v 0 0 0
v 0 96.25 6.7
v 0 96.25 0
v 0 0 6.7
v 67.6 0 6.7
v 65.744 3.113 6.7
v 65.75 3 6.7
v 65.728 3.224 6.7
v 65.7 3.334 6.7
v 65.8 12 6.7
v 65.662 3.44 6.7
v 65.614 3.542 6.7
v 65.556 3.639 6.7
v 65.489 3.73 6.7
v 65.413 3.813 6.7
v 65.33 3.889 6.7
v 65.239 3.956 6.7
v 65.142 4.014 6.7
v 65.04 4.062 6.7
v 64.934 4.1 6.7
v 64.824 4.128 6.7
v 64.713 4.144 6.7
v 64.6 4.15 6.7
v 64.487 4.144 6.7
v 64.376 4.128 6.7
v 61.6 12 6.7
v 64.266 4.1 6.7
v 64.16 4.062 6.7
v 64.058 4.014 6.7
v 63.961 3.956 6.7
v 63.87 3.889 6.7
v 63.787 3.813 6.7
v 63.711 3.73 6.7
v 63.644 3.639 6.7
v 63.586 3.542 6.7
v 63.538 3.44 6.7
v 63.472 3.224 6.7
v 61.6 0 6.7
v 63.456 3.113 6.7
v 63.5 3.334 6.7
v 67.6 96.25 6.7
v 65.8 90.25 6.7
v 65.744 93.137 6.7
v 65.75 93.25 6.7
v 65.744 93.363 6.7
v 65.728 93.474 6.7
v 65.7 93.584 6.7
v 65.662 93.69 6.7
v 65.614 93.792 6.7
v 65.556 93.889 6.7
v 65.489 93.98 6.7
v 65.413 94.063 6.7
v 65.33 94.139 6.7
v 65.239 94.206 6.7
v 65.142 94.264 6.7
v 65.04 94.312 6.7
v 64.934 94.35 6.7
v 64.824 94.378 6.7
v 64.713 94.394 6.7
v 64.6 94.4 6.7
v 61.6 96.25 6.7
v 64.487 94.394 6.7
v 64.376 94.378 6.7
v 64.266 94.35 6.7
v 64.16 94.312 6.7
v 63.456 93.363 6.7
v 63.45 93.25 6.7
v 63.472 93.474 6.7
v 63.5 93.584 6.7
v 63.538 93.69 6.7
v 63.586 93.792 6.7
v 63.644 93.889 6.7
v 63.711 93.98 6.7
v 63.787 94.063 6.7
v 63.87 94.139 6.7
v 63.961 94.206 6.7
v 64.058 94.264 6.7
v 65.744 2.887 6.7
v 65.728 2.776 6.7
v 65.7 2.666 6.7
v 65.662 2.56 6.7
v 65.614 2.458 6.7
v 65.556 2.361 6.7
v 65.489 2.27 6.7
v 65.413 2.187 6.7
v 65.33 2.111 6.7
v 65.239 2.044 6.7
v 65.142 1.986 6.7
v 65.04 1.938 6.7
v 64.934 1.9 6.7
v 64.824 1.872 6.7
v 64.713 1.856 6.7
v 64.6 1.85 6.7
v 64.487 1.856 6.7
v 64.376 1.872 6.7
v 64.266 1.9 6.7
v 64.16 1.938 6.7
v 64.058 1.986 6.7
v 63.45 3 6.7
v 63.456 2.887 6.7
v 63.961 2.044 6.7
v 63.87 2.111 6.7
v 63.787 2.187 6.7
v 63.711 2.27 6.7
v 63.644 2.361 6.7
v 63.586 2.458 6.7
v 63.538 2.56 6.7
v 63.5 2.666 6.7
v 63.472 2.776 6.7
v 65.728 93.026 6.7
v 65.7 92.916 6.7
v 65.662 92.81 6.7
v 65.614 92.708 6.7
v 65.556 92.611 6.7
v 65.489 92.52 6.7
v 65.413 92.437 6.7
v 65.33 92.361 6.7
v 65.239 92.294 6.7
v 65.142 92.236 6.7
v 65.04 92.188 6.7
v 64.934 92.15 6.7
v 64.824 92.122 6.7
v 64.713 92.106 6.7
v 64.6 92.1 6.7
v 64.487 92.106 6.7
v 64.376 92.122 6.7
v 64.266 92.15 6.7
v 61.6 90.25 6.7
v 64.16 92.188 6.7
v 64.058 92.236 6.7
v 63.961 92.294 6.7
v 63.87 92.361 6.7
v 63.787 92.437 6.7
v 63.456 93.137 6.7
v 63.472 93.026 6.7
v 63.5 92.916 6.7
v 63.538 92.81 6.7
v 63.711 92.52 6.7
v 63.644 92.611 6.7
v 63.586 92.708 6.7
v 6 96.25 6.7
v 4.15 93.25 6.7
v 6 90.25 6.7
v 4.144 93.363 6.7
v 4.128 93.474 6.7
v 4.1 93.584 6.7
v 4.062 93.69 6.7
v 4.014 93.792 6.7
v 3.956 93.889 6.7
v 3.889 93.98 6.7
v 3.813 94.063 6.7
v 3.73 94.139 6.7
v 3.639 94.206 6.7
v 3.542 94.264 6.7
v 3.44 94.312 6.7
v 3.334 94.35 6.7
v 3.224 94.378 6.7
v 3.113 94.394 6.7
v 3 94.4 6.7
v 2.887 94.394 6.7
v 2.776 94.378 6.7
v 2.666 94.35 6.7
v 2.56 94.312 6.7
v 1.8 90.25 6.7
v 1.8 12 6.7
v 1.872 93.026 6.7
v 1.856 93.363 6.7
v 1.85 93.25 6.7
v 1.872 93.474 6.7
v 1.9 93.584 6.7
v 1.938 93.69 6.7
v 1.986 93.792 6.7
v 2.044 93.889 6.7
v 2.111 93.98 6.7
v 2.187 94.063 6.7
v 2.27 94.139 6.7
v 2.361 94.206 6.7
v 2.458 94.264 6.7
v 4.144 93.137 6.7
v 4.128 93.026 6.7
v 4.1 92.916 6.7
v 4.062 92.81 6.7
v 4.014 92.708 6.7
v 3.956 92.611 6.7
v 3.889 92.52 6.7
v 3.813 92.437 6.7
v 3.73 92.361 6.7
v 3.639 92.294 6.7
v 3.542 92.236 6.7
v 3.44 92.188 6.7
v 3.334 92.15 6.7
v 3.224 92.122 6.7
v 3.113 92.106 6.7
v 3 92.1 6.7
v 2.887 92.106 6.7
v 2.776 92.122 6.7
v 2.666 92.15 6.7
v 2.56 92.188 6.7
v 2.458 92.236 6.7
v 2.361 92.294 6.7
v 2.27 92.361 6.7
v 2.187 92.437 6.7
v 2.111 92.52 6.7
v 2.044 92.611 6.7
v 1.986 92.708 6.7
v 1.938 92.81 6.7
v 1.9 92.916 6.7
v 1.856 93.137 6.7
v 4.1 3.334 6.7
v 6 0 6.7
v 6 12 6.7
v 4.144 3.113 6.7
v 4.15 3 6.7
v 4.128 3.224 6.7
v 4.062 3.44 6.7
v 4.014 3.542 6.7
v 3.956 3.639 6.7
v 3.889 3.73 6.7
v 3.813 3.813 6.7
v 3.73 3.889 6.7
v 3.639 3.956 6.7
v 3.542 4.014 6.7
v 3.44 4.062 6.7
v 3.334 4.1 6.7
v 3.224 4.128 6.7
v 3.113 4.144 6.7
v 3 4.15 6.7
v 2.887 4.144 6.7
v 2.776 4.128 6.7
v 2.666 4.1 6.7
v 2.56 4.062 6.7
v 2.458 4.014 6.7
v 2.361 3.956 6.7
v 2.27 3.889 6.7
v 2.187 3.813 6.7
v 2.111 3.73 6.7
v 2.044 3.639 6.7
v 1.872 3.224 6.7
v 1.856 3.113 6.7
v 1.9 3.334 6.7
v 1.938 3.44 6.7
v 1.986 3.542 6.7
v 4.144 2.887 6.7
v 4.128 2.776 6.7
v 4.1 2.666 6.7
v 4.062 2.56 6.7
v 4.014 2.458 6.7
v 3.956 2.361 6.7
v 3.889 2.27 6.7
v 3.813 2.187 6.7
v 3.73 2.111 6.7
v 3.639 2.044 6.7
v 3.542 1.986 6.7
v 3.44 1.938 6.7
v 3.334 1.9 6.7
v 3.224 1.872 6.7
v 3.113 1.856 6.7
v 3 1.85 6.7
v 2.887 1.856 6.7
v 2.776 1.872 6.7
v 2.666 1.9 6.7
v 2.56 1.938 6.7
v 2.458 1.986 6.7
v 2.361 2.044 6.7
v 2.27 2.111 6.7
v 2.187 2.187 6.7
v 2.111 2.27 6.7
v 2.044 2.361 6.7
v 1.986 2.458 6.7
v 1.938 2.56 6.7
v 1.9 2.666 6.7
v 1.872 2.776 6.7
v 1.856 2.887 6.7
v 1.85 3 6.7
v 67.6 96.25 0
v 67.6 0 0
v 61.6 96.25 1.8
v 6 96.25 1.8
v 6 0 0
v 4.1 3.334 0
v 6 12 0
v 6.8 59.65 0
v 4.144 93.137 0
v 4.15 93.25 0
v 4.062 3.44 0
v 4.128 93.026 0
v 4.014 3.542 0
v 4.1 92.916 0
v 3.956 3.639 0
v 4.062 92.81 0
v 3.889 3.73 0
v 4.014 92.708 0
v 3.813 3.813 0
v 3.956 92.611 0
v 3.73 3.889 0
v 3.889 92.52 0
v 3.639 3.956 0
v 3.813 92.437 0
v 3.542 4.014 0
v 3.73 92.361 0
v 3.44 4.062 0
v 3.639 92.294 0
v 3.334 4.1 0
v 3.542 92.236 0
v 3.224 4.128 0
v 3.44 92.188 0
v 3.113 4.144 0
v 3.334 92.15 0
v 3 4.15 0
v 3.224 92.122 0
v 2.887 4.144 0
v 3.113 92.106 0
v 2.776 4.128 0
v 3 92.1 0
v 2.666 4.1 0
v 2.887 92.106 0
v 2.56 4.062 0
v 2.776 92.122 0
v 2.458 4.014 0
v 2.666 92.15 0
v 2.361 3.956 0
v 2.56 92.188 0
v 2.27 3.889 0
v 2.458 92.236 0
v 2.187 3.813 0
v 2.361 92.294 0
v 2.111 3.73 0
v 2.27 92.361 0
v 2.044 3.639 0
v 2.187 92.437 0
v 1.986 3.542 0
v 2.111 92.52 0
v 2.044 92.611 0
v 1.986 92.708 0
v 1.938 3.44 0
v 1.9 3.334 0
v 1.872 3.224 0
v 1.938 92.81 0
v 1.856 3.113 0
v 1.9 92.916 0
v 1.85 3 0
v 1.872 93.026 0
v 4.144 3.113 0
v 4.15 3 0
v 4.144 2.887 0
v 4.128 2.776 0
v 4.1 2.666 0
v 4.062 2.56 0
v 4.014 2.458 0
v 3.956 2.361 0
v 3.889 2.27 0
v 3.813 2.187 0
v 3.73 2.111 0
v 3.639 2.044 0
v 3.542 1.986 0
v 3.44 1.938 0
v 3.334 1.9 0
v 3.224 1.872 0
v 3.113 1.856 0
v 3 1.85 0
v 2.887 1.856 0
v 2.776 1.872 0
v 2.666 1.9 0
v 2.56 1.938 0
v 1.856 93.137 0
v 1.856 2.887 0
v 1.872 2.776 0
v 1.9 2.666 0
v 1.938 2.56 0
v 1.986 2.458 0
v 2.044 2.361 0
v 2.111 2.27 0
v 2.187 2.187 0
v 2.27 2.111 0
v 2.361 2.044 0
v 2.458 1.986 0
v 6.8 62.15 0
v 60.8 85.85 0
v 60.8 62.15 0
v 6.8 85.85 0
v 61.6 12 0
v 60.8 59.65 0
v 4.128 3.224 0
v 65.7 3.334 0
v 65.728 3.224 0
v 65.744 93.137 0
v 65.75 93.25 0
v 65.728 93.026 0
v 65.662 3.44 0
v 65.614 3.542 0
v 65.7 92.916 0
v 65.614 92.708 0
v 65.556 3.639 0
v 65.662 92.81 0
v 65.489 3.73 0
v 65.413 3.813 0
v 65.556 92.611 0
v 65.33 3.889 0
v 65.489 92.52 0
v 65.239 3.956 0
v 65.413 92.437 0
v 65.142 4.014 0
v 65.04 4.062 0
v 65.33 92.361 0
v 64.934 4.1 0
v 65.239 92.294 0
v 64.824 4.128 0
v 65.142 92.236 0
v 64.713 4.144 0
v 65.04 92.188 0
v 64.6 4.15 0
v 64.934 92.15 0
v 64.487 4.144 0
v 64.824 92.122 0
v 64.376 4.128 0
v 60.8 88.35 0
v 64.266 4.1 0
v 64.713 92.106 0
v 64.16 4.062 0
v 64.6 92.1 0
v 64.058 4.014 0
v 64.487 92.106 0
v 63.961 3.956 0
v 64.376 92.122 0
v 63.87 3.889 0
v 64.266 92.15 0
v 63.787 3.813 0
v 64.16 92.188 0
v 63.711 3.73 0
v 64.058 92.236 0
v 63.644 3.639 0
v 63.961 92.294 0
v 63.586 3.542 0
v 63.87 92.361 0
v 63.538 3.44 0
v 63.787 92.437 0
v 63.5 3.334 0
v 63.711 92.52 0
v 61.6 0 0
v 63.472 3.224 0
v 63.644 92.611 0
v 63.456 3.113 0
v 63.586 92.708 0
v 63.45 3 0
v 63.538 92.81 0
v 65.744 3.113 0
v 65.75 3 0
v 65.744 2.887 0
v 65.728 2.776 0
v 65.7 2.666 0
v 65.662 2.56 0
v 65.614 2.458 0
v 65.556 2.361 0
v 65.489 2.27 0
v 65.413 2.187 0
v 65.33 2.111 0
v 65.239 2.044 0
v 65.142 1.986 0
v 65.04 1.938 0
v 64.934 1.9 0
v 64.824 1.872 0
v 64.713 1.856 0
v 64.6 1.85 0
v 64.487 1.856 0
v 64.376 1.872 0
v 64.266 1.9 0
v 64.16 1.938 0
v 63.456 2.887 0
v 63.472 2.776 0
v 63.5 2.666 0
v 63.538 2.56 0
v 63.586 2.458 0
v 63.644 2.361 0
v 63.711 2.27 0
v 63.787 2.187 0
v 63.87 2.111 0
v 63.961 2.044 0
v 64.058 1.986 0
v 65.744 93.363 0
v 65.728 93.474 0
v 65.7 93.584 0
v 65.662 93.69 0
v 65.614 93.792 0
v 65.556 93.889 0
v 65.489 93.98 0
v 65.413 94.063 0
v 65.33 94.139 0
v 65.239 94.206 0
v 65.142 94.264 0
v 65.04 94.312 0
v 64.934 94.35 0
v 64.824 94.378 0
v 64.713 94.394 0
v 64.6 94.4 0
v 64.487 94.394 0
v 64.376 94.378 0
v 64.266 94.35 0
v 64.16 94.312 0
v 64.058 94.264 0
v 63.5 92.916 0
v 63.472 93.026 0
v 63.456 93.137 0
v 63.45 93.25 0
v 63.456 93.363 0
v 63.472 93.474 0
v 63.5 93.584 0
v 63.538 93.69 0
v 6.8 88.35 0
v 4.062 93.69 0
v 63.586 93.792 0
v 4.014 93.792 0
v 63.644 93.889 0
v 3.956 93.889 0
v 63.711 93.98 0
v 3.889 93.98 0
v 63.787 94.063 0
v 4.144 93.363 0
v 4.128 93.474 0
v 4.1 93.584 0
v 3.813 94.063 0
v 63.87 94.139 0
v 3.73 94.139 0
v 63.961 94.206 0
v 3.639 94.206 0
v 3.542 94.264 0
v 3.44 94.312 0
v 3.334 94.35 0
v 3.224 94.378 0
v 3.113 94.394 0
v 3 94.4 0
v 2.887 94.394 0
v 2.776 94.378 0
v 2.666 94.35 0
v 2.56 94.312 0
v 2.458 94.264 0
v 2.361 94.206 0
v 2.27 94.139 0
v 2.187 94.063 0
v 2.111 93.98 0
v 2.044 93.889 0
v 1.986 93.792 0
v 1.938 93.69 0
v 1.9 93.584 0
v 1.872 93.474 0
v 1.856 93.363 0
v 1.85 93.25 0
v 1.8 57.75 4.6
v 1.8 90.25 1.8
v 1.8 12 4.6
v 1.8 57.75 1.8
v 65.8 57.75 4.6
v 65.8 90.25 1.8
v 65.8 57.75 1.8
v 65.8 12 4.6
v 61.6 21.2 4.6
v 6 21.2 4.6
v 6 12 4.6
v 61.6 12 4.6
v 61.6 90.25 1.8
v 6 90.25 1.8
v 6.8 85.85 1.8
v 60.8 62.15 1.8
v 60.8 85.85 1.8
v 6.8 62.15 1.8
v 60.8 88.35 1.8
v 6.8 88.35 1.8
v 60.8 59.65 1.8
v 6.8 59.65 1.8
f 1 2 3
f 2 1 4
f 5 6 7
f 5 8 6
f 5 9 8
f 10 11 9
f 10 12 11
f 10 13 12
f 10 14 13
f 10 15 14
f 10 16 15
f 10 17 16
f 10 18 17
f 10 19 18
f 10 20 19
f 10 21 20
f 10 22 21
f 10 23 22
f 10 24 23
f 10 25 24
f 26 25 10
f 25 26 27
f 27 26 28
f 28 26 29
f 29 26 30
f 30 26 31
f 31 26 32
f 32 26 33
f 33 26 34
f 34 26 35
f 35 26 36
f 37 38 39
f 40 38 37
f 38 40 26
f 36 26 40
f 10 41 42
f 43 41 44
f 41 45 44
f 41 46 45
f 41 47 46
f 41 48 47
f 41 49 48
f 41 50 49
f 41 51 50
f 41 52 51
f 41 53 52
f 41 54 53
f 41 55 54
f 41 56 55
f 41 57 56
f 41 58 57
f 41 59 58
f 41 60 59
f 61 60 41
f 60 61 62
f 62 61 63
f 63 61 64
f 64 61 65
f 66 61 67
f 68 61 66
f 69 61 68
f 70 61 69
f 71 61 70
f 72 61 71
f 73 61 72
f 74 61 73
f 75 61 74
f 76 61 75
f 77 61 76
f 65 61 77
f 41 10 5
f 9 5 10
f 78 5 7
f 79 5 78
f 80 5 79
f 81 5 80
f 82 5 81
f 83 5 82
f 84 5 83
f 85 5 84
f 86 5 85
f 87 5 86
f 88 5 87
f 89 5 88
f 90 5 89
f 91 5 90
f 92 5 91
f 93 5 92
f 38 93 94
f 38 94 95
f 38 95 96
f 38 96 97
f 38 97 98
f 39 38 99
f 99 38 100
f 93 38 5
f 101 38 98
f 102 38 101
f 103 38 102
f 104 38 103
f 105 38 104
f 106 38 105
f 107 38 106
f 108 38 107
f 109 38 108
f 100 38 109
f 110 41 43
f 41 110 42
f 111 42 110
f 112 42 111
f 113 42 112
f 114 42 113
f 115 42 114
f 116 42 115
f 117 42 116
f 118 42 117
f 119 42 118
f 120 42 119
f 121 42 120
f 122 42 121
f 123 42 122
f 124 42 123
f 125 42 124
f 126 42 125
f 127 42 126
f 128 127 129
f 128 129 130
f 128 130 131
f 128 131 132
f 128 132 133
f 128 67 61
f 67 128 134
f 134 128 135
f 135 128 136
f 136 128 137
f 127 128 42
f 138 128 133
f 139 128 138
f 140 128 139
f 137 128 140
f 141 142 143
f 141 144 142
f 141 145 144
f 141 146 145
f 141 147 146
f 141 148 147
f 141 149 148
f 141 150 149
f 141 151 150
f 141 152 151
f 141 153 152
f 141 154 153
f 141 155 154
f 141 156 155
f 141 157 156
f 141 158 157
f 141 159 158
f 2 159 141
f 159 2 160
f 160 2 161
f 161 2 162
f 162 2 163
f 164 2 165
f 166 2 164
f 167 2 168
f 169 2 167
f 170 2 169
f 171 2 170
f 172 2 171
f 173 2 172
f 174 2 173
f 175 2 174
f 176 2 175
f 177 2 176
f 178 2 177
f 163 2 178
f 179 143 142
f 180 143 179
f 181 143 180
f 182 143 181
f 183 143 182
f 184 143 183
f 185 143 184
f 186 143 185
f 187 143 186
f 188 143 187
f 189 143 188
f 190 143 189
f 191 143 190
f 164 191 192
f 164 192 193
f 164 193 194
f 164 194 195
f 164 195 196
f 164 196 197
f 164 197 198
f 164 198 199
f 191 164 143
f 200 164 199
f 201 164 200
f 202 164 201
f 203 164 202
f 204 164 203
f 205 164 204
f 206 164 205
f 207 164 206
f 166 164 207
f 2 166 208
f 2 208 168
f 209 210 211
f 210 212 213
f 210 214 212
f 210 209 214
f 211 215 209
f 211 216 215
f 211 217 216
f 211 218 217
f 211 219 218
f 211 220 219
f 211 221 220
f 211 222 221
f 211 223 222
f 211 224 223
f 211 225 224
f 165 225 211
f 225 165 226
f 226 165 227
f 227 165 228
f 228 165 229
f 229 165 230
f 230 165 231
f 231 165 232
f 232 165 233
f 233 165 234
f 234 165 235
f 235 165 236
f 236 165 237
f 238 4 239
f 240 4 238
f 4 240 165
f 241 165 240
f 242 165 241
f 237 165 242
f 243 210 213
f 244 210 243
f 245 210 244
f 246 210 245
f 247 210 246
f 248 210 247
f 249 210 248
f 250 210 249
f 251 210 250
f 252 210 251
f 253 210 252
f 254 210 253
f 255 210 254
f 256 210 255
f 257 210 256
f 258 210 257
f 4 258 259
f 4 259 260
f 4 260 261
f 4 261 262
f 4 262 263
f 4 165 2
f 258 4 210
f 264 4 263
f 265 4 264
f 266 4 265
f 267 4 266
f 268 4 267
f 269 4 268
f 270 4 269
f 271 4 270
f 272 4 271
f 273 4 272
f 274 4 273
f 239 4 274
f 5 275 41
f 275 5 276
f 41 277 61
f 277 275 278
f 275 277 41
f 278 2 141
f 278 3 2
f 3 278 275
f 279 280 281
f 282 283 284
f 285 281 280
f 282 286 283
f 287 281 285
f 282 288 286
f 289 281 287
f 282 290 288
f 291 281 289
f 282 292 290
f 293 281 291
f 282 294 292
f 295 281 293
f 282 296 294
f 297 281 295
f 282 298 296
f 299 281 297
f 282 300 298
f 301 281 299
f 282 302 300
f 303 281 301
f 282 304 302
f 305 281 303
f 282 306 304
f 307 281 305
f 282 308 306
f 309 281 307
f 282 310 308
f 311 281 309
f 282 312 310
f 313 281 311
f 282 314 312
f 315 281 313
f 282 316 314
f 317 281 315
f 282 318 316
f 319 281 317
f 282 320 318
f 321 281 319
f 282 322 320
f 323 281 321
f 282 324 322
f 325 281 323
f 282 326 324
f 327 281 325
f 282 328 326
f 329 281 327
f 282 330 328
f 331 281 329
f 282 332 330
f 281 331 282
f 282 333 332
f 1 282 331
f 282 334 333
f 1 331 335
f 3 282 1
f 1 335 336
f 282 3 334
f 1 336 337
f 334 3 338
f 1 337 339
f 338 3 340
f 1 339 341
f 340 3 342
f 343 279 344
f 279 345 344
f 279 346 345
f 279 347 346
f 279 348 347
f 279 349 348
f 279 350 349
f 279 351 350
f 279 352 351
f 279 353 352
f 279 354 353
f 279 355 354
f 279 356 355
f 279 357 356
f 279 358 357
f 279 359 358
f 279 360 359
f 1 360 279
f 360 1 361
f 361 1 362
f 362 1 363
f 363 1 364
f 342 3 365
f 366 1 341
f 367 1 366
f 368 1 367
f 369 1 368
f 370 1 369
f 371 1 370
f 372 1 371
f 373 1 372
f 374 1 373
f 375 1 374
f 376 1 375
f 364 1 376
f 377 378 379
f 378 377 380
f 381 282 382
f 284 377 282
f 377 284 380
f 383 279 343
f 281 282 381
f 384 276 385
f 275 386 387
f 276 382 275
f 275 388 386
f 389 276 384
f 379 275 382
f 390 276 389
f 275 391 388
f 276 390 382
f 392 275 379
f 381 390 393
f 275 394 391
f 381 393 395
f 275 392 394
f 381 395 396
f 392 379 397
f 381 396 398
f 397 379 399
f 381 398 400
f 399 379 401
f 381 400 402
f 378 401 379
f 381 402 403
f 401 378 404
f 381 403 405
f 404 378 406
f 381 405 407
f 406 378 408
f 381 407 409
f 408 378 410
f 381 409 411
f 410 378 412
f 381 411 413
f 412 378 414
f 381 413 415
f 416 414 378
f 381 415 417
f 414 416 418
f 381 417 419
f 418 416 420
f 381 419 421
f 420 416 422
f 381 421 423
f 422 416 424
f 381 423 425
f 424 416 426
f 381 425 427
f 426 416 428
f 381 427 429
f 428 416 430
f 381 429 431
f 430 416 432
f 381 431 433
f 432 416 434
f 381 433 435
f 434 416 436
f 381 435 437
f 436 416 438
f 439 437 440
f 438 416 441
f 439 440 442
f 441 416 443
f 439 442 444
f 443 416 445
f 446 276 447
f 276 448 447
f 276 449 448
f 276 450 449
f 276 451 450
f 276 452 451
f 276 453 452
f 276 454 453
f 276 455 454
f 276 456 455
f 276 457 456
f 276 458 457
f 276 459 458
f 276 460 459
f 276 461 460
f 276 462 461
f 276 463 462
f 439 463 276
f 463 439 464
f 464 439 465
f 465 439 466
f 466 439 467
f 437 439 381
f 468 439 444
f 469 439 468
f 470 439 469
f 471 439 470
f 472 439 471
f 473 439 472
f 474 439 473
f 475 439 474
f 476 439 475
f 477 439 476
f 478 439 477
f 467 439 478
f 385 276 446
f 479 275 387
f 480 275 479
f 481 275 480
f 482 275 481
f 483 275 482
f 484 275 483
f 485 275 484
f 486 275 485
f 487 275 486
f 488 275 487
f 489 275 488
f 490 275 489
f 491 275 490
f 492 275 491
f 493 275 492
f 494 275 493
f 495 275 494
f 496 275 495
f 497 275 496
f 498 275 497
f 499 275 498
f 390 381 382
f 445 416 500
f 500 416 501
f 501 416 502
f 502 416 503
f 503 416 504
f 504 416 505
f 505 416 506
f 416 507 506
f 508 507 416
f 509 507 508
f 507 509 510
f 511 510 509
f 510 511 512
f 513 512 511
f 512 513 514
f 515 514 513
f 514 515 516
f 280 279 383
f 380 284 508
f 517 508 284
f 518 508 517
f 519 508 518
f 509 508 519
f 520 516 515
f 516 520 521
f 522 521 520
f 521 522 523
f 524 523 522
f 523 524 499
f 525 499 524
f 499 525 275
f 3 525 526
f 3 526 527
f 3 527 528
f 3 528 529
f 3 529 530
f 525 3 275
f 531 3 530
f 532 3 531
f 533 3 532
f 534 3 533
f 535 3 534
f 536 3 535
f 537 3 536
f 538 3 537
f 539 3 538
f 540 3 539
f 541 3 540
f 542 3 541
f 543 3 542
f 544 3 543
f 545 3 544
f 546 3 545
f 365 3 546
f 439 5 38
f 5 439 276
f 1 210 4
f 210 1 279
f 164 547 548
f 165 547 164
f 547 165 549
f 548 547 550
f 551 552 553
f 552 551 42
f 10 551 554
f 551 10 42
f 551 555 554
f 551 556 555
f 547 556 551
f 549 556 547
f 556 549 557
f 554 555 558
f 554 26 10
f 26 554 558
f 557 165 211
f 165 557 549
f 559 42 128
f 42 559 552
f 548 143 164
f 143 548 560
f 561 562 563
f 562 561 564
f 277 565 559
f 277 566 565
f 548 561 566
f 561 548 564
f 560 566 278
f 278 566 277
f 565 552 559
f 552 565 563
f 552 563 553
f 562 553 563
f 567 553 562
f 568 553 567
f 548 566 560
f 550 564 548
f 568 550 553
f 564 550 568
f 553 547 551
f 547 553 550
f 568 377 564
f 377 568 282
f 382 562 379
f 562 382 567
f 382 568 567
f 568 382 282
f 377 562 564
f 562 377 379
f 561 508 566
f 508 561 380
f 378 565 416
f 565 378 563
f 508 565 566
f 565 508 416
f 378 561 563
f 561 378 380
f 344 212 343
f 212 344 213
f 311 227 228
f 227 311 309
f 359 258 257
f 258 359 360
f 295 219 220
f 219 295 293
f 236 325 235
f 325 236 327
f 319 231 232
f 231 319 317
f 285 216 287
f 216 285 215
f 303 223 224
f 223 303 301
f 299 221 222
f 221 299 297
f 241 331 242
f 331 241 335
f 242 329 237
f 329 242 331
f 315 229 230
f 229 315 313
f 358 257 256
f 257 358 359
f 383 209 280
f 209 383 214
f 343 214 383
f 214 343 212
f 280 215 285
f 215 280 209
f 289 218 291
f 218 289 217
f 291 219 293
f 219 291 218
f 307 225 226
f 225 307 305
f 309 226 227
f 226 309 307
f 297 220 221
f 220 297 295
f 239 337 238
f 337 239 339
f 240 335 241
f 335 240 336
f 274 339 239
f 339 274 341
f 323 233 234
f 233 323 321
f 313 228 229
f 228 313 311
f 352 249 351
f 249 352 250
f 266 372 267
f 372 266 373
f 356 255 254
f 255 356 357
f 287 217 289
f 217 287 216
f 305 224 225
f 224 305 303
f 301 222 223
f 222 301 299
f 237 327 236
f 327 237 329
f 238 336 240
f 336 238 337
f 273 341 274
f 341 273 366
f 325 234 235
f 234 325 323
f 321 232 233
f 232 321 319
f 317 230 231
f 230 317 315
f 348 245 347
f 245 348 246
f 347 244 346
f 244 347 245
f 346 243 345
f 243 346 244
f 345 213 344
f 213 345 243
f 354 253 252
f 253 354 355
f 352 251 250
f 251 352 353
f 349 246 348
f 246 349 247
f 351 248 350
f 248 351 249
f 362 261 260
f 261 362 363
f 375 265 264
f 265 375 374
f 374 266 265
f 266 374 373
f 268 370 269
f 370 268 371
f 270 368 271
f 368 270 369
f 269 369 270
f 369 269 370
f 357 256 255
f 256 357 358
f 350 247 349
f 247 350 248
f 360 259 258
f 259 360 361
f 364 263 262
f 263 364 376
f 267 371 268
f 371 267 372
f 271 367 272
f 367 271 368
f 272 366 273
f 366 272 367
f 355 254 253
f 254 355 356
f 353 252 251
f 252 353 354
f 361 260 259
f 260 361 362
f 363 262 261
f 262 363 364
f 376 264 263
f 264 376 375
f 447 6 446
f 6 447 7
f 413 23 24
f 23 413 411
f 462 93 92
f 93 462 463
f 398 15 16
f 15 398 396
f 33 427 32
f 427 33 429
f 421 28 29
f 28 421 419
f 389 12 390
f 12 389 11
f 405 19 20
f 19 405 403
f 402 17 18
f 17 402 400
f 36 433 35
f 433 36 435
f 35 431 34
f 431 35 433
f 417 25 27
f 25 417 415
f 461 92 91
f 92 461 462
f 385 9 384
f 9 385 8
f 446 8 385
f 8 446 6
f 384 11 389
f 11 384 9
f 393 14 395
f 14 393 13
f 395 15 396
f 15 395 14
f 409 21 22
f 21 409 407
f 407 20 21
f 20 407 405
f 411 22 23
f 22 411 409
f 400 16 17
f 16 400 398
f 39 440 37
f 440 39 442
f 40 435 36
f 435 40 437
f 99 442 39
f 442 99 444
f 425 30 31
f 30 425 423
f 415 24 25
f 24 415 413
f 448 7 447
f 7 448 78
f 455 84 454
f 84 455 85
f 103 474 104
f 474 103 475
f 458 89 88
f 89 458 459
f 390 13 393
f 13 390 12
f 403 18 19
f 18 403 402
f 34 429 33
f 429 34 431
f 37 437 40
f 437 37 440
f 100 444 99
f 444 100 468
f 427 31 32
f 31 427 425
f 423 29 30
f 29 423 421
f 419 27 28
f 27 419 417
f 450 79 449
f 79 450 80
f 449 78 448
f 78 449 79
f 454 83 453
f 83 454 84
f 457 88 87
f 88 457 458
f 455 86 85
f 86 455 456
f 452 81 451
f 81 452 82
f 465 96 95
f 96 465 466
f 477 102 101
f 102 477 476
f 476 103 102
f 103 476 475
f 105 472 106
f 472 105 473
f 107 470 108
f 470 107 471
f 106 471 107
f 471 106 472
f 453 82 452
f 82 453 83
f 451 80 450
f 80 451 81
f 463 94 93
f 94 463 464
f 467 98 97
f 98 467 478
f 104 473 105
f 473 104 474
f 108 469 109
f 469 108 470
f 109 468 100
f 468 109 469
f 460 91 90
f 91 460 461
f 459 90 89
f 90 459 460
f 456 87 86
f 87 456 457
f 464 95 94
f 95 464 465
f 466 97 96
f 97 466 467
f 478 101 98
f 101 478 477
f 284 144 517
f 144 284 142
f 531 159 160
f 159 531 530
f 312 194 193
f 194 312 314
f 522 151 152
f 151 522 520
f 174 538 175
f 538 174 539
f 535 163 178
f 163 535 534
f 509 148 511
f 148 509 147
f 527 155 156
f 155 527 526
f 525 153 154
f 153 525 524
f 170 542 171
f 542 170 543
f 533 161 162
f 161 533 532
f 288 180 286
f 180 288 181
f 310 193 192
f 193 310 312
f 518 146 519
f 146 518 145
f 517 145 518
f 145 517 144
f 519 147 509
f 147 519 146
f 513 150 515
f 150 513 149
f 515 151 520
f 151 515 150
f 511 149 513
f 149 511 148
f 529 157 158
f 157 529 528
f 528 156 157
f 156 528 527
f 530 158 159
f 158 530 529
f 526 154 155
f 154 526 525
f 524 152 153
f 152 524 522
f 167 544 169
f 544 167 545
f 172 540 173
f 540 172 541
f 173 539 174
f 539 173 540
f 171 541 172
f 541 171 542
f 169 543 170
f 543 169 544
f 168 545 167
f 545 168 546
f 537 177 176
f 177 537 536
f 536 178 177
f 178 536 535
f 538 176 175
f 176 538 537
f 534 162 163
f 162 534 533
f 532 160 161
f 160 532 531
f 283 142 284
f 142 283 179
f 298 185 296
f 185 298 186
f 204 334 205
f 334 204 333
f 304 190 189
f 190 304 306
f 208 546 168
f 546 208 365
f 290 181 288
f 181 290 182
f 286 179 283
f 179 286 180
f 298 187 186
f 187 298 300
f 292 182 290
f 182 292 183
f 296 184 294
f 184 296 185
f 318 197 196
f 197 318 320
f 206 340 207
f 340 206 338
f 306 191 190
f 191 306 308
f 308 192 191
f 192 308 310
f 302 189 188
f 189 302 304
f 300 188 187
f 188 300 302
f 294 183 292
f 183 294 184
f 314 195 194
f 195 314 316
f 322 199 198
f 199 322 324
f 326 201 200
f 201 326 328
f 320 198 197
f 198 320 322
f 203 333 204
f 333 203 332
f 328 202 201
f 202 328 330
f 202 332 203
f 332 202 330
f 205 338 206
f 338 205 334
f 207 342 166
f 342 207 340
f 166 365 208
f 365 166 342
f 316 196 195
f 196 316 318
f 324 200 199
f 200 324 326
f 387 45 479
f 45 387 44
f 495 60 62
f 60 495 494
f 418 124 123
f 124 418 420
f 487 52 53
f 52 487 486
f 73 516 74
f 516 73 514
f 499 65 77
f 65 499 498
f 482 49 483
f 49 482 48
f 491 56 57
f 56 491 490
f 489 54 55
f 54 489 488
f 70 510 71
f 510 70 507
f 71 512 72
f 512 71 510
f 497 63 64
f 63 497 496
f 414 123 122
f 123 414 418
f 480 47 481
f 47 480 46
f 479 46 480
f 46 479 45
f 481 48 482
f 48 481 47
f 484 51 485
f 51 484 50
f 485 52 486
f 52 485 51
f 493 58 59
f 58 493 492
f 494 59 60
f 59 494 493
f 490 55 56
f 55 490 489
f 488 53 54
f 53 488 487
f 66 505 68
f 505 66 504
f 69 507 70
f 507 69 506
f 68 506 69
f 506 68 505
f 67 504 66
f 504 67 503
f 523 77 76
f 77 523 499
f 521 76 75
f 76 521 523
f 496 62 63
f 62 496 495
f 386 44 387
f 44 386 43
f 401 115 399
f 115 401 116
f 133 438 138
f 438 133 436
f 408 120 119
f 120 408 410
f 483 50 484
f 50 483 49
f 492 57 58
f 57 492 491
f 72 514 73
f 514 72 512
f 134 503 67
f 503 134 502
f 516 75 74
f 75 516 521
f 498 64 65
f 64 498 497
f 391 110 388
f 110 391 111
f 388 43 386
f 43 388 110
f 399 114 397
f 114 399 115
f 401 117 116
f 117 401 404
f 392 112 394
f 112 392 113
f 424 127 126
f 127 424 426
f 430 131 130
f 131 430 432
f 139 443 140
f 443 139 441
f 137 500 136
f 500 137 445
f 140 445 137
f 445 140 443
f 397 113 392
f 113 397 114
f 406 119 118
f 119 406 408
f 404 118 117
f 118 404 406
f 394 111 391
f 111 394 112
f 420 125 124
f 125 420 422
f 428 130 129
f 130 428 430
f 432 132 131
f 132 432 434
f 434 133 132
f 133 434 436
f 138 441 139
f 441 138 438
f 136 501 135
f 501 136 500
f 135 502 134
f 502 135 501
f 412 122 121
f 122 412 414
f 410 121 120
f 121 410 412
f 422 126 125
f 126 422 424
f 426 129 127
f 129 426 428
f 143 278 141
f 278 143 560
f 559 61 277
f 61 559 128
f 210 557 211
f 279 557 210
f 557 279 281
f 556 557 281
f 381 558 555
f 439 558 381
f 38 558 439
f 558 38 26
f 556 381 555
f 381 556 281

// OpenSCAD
// file: variables.scad
// Radius an M3 screw hole has M3 screw fits in with a bit of extra space
screwHoleRadiusM2 = 1.15; // 2.3 mm diameter
screwHoleRadiusM3 = 1.65; // 3.3 mm diameter

// Dimensions of the micro switch, case only, without pins and switch latch
switchZ = 6.6; // Thickness of switch
switchX = 10.6; // Width of switch
switchY = 20.2; // Height of switch

// Dimensions of switch holder details
switchHolderBaseMaterialZ = 1.6; // Basic material thickness. This is the smallest thickness at the switch
switchHolderInsetZ = 1.2; // Inset thickness added to base thickness so switch can't fall out
switchHolderLatchX = 20; // Width of the part the filament runs through
switchHolderScrewLatchY = 6; // Height of the part that holds the screws (two of them, one above, one below switch)

// Absolute dimension vars of the whole micro switch holder, without the filament guide latches on top and bottom
switchHolderX = 2*switchHolderBaseMaterialZ + switchX + switchHolderLatchX;
switchHolderY = switchHolderScrewLatchY + switchY + switchHolderScrewLatchY;
// Full thickness is 2 parts
switchHolderZ = 2*switchHolderBaseMaterialZ + switchZ;
// Distance between the middle point of the two holder screws
switchHolderScrewDistanceX = switchY + switchHolderScrewLatchY;
// Thickness of the space the filament runs through
filamentFlowSpaceZ = switchHolderZ - 2*switchHolderBaseMaterialZ - 2*switchHolderInsetZ;

// Debug out final switch dimensions
echo(switchHolderX = switchHolderX);
echo(switchHolderY = switchHolderY);
echo(switchHolderZ = switchHolderZ);
echo(switchHolderScrewDistanceX = switchHolderScrewDistanceX);
echo(filamentFlowSpaceZ = filamentFlowSpaceZ);

// Dimensions of the filament guidance
guidanceMaterialThickness = 1.8;
guidanceX = 2*guidanceMaterialThickness + 64;
guidanceY = 96.25;
guidanceZ = switchHolderZ + 2*guidanceMaterialThickness;
guidanceScrewBaseX = 6;
guidanceScrewBaseY = 6;
// file: ../primitives/prism.scad
// A simple prism
module primitivePrism(x, y, z) {
   polyhedron(
       points=[[0,0,0], [x,0,0], [x,y,0], [0,y,0], [0,y,z], [x,y,z]],
       faces=[[0,1,2,3],[5,4,3,2],[0,4,5,1],[0,3,4],[5,2,1]]
   );
}
// main file
include <../primitives/prism.scad>;
include <variables.scad>;

// A base pod for holder screws
module screwBase() {
    difference() {
        cube([
            guidanceScrewBaseX,
            guidanceScrewBaseY,
            guidanceZ/2
        ]);
        translate([
            guidanceScrewBaseX/2,
            guidanceScrewBaseY/2,
            0
        ]) cylinder(
            h=guidanceZ/2,
            r=screwHoleRadiusM2,
            $fn=64
        );
    }
}

// Main filament guide for the filament to the micro switch holder.
// This is the main part below the ceiling that holds the horizontally adjustable
// micro switch holder.
// This part is one half, two are needed.
module feederFilamentGuide() {
    difference() {
        // Base cube, everything else is substracted from this
        cube([
            guidanceX,
            guidanceY,
            guidanceZ/2
        ]);

        // Remove base inset
        translate([
            guidanceMaterialThickness,
            2*guidanceScrewBaseY,
            guidanceZ/2 - filamentFlowSpaceZ/2
        ]) cube([
            guidanceX - 2*guidanceMaterialThickness,
            guidanceY - 3*guidanceScrewBaseY,
            filamentFlowSpaceZ/2
        ]);

        // Remove part the switch holder flows in
        translate([
            guidanceMaterialThickness,
            74 - switchHolderY/2 - 0.15,
            guidanceMaterialThickness,
        ]) cube([
            guidanceX - 2*guidanceMaterialThickness,
            switchHolderY + 2*0.15, // 0.15 is some additional space around
            switchHolderBaseMaterialZ + switchHolderInsetZ
        ]);

        // Remove wide hole for horizontally adjustable switch holder upper row
        translate([
            guidanceMaterialThickness + 5,
            74 - switchHolderY/2 + switchHolderScrewLatchY/2 - (screwHoleRadiusM2*2 + 0.2)/2,
            0
        ]) cube([
            guidanceX - 2*guidanceMaterialThickness - 10,
            screwHoleRadiusM2*2 + 0.2,
            guidanceMaterialThickness
        ]);

        // Remove wide hole for horizontally adjustable switch holder lower row
        translate([
            guidanceMaterialThickness + 5,
            74 - switchHolderY/2 + switchHolderScrewLatchY/2 - (screwHoleRadiusM2*2 + 0.2)/2 + switchHolderScrewDistanceX,
            0
        ]) cube([
            guidanceX - 2*guidanceMaterialThickness - 10,
            screwHoleRadiusM2*2 + 0.2,
            guidanceMaterialThickness
        ]);

        // Remove holes for screws at edges
        translate([
            guidanceScrewBaseX/2,
            guidanceScrewBaseY/2,
            0
        ]) cylinder(
            h=guidanceZ/2,
            r=screwHoleRadiusM2,
            $fn=64
        );
        translate([
            guidanceX - guidanceScrewBaseX/2,
            guidanceScrewBaseY/2,
            0
        ]) cylinder(
            h=guidanceZ/2,
            r=screwHoleRadiusM2,
            $fn=64
        );
        translate([
            guidanceScrewBaseX/2,
            guidanceY - guidanceScrewBaseY/2,
            0
        ]) cylinder(
            h=guidanceZ/2,
            r=screwHoleRadiusM2,
            $fn=64
        );
        translate([
            guidanceX - guidanceScrewBaseX/2,
            guidanceY - guidanceScrewBaseY/2,
            0
        ]) cylinder(
            h=guidanceZ/2,
            r=screwHoleRadiusM2,
            $fn=64
        );

        // Extend inset at lower part so filament can't get stuck here
        translate([
            guidanceScrewBaseX,
            guidanceY - guidanceScrewBaseY,
            guidanceMaterialThickness,
        ]) cube([
            guidanceX - 2*guidanceScrewBaseX,
            guidanceScrewBaseY,
            guidanceZ - guidanceMaterialThickness
        ]);

        // Have a cut at top end - enough for a wrench height
        translate([
            guidanceScrewBaseX,
            0,
            0,
        ]) cube([
            guidanceX - 2*guidanceScrewBaseX,
            2* guidanceScrewBaseY,
            guidanceZ
        ]);

        // Have a prism at top part for easier filament insert
        translate([
            guidanceScrewBaseX,
            2*guidanceScrewBaseY + 2*(guidanceZ/2 - filamentFlowSpaceZ/2),
            guidanceZ/2 - filamentFlowSpaceZ/2
        ]) rotate([
            180,
            0,
            0
        ]) primitivePrism(
            guidanceX - 2*guidanceScrewBaseX,
            2*(guidanceZ/2 - filamentFlowSpaceZ/2),
            guidanceZ/2 - filamentFlowSpaceZ/2
        );
    };
}

feederFilamentGuide();
